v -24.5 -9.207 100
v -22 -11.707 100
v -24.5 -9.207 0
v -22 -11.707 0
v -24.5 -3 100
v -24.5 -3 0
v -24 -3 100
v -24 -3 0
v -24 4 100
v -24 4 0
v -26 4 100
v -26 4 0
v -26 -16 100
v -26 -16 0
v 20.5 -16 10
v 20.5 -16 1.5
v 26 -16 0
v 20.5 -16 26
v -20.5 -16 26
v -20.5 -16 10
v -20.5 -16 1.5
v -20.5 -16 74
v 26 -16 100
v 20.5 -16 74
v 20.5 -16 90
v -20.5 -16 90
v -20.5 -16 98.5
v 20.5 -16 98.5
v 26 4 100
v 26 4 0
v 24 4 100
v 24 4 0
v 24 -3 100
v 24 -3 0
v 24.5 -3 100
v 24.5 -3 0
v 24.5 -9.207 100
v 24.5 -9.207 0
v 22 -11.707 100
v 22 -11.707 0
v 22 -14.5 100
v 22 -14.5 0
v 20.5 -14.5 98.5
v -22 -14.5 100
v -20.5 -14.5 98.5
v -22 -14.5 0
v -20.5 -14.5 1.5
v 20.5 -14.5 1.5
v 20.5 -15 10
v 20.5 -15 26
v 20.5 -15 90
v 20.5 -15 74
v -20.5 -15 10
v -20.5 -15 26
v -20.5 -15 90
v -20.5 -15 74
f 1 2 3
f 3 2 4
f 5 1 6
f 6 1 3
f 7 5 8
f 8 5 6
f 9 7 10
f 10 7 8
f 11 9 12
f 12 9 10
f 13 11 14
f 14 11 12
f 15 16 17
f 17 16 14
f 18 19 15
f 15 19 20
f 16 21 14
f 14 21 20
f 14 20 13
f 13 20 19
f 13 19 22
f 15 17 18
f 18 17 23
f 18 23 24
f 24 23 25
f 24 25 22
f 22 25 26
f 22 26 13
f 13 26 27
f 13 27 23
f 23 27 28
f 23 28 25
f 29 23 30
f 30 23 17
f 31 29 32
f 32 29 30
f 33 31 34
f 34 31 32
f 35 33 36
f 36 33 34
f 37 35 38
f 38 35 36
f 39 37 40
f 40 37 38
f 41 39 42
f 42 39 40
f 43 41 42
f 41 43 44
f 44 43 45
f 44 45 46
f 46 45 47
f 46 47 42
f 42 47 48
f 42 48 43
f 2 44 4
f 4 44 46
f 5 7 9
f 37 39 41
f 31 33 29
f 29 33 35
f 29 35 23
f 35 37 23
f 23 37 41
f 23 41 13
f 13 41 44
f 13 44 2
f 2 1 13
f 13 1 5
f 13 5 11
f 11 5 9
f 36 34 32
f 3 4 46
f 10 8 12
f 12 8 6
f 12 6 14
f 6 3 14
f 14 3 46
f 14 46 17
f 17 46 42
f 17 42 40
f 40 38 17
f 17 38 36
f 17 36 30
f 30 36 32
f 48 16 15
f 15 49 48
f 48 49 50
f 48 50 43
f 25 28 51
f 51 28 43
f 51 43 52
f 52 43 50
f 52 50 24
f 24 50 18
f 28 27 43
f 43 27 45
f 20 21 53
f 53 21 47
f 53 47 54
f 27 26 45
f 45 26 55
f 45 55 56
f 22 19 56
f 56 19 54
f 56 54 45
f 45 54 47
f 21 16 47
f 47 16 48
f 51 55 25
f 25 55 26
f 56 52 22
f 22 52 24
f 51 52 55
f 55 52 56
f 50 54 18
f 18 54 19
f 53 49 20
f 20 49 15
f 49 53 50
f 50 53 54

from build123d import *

# Parameters (mm, degrees)
RESSALTO_EXTRUS_O1_DEPTH = 100
RESSALTO_EXTRUS_O3_REACH = 107.835
ESBO_O3_W                = 45
ESBO_O3_H                = 1.5
CORTE_EXTRUS_O1_DEPTH    = 103.343783397
ESBO_O5_W                = 12
ESBO_O5_H                = 1.5
CORTE_EXTRUS_O2_DEPTH    = 106.834776893
ESBO_O6_W                = 45
ESBO_O6_H                = 2
RESSALTO_EXTRUS_O4_DEPTH = 25
ESBO_O7_W                = 2.8
ESBO_O7_H                = 2.8
CORTE_EXTRUS_O3_DEPTH    = 10
CORTE_EXTRUS_O4_DEPTH    = 104.788245963
RESSALTO_EXTRUS_O5_DEPTH = 100
ESBO_O10_W               = 0.5
ESBO_O10_H               = 8
CORTE_EXTRUS_O5_DEPTH    = 104.788245963
CHANFRO1_SIZE            = 3
CHANFRO2_SIZE            = 3
RESSALTO_EXTRUS_O6_DEPTH = 100
CORTE_EXTRUS_O6_DEPTH    = 105.556204981
ESBO_O13_W               = 41
ESBO_O13_H               = 97.00005
CORTE_EXTRUS_O7_DEPTH    = 105.967852222
ESBO_O14_W               = 41
ESBO_O14_H               = 16
RESSALTO_EXTRUS_O7_DEPTH = 1


with BuildPart() as part:
    # Esboço1 → Ressalto-extrusão1 (new body)
    with BuildSketch(Plane.XY):
        Polygon((-22.5, 12.5), (-22.5, -7.5), (-17.5, -12.5), (17.5, -12.5), (22.5, -7.5), (22.5, 12.5), (24, 12.5), (24, -9), (19, -14), (-19, -14), (-24, -9), (-24, 12.5), align=None)
    extrude(amount=RESSALTO_EXTRUS_O1_DEPTH)

    # Ressalto-extrusão3: up to this face of the body (flat: up to its plane)
    ressalto_extrus_o3_end = Plane(part.part.faces().sort_by_distance((-23.25, 12.5, 50))[0])
    # Esboço3 → Ressalto-extrusão3 (add, up to the picked face)
    with BuildSketch(Plane(origin=(0, -12.5, 0), x_dir=(1, 0, 0), z_dir=(0, 1, 0)), mode=Mode.PRIVATE) as ressalto_extrus_o3_sk1:
        with Locations((0, -0.75)):
            Rectangle(ESBO_O3_W, ESBO_O3_H)
    ressalto_extrus_o3_tool1 = split(extrude(ressalto_extrus_o3_sk1.sketch, amount=RESSALTO_EXTRUS_O3_REACH, mode=Mode.PRIVATE), bisect_by=ressalto_extrus_o3_end, keep=Keep.BOTH, mode=Mode.PRIVATE)
    add(ressalto_extrus_o3_tool1.solids().sort_by(Axis((0, -12.5, 0.75), (0, 1, 0)))[0])

    # Esboço4 → Corte-extrusão1 (cut, through all)
    with BuildSketch(Plane.XY.offset(1.5)):
        Polygon((-10, -12.5), (10, -12.5), (10, -7.5), (5, -2.5), (-5, -2.5), (-10, -7.5), align=None)
    extrude(amount=-CORTE_EXTRUS_O1_DEPTH, mode=Mode.SUBTRACT)

    # Esboço5 → Corte-extrusão2 (cut, through all)
    with BuildSketch(Plane(origin=(0, -12.5, 0), x_dir=(1, 0, 0), z_dir=(0, 1, 0))):
        with Locations((0, -2.25)):
            Rectangle(ESBO_O5_W, ESBO_O5_H)
    extrude(amount=-CORTE_EXTRUS_O2_DEPTH, mode=Mode.SUBTRACT)

    # Esboço6 → Ressalto-extrusão4 (add)
    with BuildSketch(Plane(origin=(0, -12.5, 0), x_dir=(1, 0, 0), z_dir=(0, 1, 0))):
        with Locations((0, -99)):
            Rectangle(ESBO_O6_W, ESBO_O6_H)
    extrude(amount=RESSALTO_EXTRUS_O4_DEPTH)

    # Esboço7 → Corte-extrusão3 (cut)
    with BuildSketch(Plane.XY.offset(100)):
        with Locations((-8, 8.5)):
            Rectangle(ESBO_O7_W, ESBO_O7_H)
        with Locations((-16, 8.5)):
            Rectangle(ESBO_O7_W, ESBO_O7_H)
        with Locations((0, 8.5)):
            Rectangle(ESBO_O7_W, ESBO_O7_H)
        with Locations((8, 8.5)):
            Rectangle(ESBO_O7_W, ESBO_O7_H)
        with Locations((16, 8.5)):
            Rectangle(ESBO_O7_W, ESBO_O7_H)
        with Locations((-8, 0.5)):
            Rectangle(ESBO_O7_W, ESBO_O7_H)
        with Locations((0, 0.5)):
            Rectangle(ESBO_O7_W, ESBO_O7_H)
        with Locations((8, 0.5)):
            Rectangle(ESBO_O7_W, ESBO_O7_H)
        with Locations((16, 0.5)):
            Rectangle(ESBO_O7_W, ESBO_O7_H)
        with Locations((-8, -7.5)):
            Rectangle(ESBO_O7_W, ESBO_O7_H)
        with Locations((0, -7.5)):
            Rectangle(ESBO_O7_W, ESBO_O7_H)
        with Locations((8, -7.5)):
            Rectangle(ESBO_O7_W, ESBO_O7_H)
        with Locations((16, -7.5)):
            Rectangle(ESBO_O7_W, ESBO_O7_H)
        with Locations((-16, 0.5)):
            Rectangle(ESBO_O7_W, ESBO_O7_H)
        with Locations((-16, -7.5)):
            Rectangle(ESBO_O7_W, ESBO_O7_H)
    extrude(amount=-CORTE_EXTRUS_O3_DEPTH, mode=Mode.SUBTRACT)

    # Esboço8 → Corte-extrusão4 (cut, through all)
    with BuildSketch(Plane(origin=(0, 0, 0), x_dir=(-1, 0, 0), z_dir=(0, 0, -1))):
        Polygon((-22.5, -10.5), (-22.5, -12.5), (-20.5, -12.5), align=None)
        Polygon((20.5, -12.5), (22.5, -12.5), (22.5, -10.5), align=None)
    extrude(amount=-CORTE_EXTRUS_O4_DEPTH, mode=Mode.SUBTRACT)

    # Esboço9 → Ressalto-extrusão5 (add, through all)
    with BuildSketch(Plane(origin=(0, 0, 0), x_dir=(-1, 0, 0), z_dir=(0, 0, -1))):
        Polygon((-19, -14), (-21.5, -14), (-21.5, -11.5), align=None)
        Polygon((19, -14), (21.5, -14), (21.5, -11.5), align=None)
    extrude(amount=-RESSALTO_EXTRUS_O5_DEPTH)

    # Esboço10 → Corte-extrusão5 (cut, through all)
    with BuildSketch(Plane(origin=(0, 0, 0), x_dir=(-1, 0, 0), z_dir=(0, 0, -1))):
        with Locations((-23.75, 0.5)):
            Rectangle(ESBO_O10_W, ESBO_O10_H)
        with Locations((23.75, 0.5)):
            Rectangle(ESBO_O10_W, ESBO_O10_H)
    extrude(amount=-CORTE_EXTRUS_O5_DEPTH, mode=Mode.SUBTRACT)

    # Chanfro1
    # the kernel refuses this chamfer: 3 mm, written as the material it adds along each edge
    with BuildSketch(Plane(origin=(22.5, -15.215048964, 98), x_dir=(0.027495876610586768, 0, -0.9996219169112968), z_dir=(0, 1, 0))) as chanfro1_piece_1_section:
        Polygon((CHANFRO1_SIZE * 0.999621916911, CHANFRO1_SIZE * 0.0274958766106), (-CHANFRO1_SIZE * 0.0274958766106, CHANFRO1_SIZE * 0.999621916911), (0, 0), align=None)
    chanfro1_piece_1 = extrude(amount=27.715048964, mode=Mode.PRIVATE)
    chanfro1_piece_1 = split(chanfro1_piece_1, bisect_by=Plane(origin=(27.146986971, -2.853013029, 96.73534202), z_dir=(-0.7071067811865475, 0.7071067811865476, 0)), keep=Keep.TOP, mode=Mode.PRIVATE)
    add(chanfro1_piece_1)
    with BuildSketch(Plane(origin=(12.04463656, -17.95536344, 98), x_dir=(-0.7068394360706735, 0.7068394360706735, 0.027495876610586778), z_dir=(0.7071067811865476, 0.7071067811865475, 0))) as chanfro1_piece_2_section:
        Polygon((CHANFRO1_SIZE * 0.999621916911, -CHANFRO1_SIZE * 0.0274958766106), (-CHANFRO1_SIZE * 0.0274958766106, -CHANFRO1_SIZE * 0.999621916911), (0, 0), align=None)
    chanfro1_piece_2 = extrude(amount=22.50116574, mode=Mode.PRIVATE)
    chanfro1_piece_2 = split(chanfro1_piece_2, bisect_by=Plane(origin=(16.362312496, -12.5, 97.266244129), z_dir=(0, 1, 0)), keep=Keep.TOP, mode=Mode.PRIVATE)
    chanfro1_piece_2 = split(chanfro1_piece_2, bisect_by=Plane(origin=(16.362312496, -8.9, 97.266244129), z_dir=(0, -1, 0)), keep=Keep.TOP, mode=Mode.PRIVATE)
    add(chanfro1_piece_2)
    with BuildSketch(Plane(origin=(12.04463656, -17.95536344, 98), x_dir=(-0.7068394360706735, 0.7068394360706735, 0.027495876610586778), z_dir=(0.7071067811865476, 0.7071067811865475, 0))) as chanfro1_piece_3_section:
        Polygon((CHANFRO1_SIZE * 0.999621916911, -CHANFRO1_SIZE * 0.0274958766106), (-CHANFRO1_SIZE * 0.0274958766106, -CHANFRO1_SIZE * 0.999621916911), (0, 0), align=None)
    chanfro1_piece_3 = extrude(amount=22.50116574, mode=Mode.PRIVATE)
    chanfro1_piece_3 = split(chanfro1_piece_3, bisect_by=Plane(origin=(22.5, -7.314063038, 97.124733651), z_dir=(-1, 0, 0)), keep=Keep.TOP, mode=Mode.PRIVATE)
    chanfro1_piece_3 = split(chanfro1_piece_3, bisect_by=Plane(origin=(17.4, -7.314063038, 97.124733651), z_dir=(1, 0, 0)), keep=Keep.TOP, mode=Mode.PRIVATE)
    add(chanfro1_piece_3)
    with BuildSketch(Plane(origin=(25.215048964, -12.5, 98), x_dir=(0, -0.02749587661058619, -0.9996219169112968), z_dir=(-1, 0, 0))) as chanfro1_piece_4_section:
        Polygon((CHANFRO1_SIZE * 0.999621916911, -CHANFRO1_SIZE * 0.0274958766106), (-CHANFRO1_SIZE * 0.0274958766106, -CHANFRO1_SIZE * 0.999621916911), (0, 0), align=None)
    chanfro1_piece_4 = extrude(amount=50.430097928, mode=Mode.PRIVATE)
    chanfro1_piece_4 = split(chanfro1_piece_4, bisect_by=Plane(origin=(-9.263513514, -20.736486486, 97.013513514), z_dir=(0.7071067811865475, 0.7071067811865476, 0)), keep=Keep.TOP, mode=Mode.PRIVATE)
    chanfro1_piece_4 = split(chanfro1_piece_4, bisect_by=Plane(origin=(9.263513514, -20.736486486, 97.013513514), z_dir=(-0.7071067811865475, 0.7071067811865476, 0)), keep=Keep.TOP, mode=Mode.PRIVATE)
    add(chanfro1_piece_4)
    with BuildSketch(Plane(origin=(-27.95536344, -2.04463656, 98), x_dir=(0.7068394360706733, 0.7068394360706736, 0.027495876610586757), z_dir=(0.7071067811865476, -0.7071067811865475, 0))) as chanfro1_piece_5_section:
        Polygon((CHANFRO1_SIZE * 0.999621916911, -CHANFRO1_SIZE * 0.0274958766106), (-CHANFRO1_SIZE * 0.0274958766106, -CHANFRO1_SIZE * 0.999621916911), (0, 0), align=None)
    chanfro1_piece_5 = extrude(amount=22.50116574, mode=Mode.PRIVATE)
    chanfro1_piece_5 = split(chanfro1_piece_5, bisect_by=Plane(origin=(-22.5, -3.439339828, 97.957106781), z_dir=(1, 0, 0)), keep=Keep.TOP, mode=Mode.PRIVATE)
    chanfro1_piece_5 = split(chanfro1_piece_5, bisect_by=Plane(origin=(-17.4, -3.439339828, 97.957106781), z_dir=(-1, 0, 0)), keep=Keep.TOP, mode=Mode.PRIVATE)
    add(chanfro1_piece_5)
    with BuildSketch(Plane(origin=(-27.95536344, -2.04463656, 98), x_dir=(0.7068394360706733, 0.7068394360706736, 0.027495876610586757), z_dir=(0.7071067811865476, -0.7071067811865475, 0))) as chanfro1_piece_6_section:
        Polygon((CHANFRO1_SIZE * 0.999621916911, -CHANFRO1_SIZE * 0.0274958766106), (-CHANFRO1_SIZE * 0.0274958766106, -CHANFRO1_SIZE * 0.999621916911), (0, 0), align=None)
    chanfro1_piece_6 = extrude(amount=22.50116574, mode=Mode.PRIVATE)
    chanfro1_piece_6 = split(chanfro1_piece_6, bisect_by=Plane(origin=(-16.362312496, -12.5, 97.266244129), z_dir=(0, 1, 0)), keep=Keep.TOP, mode=Mode.PRIVATE)
    chanfro1_piece_6 = split(chanfro1_piece_6, bisect_by=Plane(origin=(-16.362312496, -8.9, 97.266244129), z_dir=(0, -1, 0)), keep=Keep.TOP, mode=Mode.PRIVATE)
    add(chanfro1_piece_6)
    with BuildSketch(Plane(origin=(-22.5, -15.215048964, 98), x_dir=(-0.027495876610586768, 0, -0.9996219169112968), z_dir=(0, 1, 0))) as chanfro1_piece_7_section:
        Polygon((CHANFRO1_SIZE * 0.999621916911, -CHANFRO1_SIZE * 0.0274958766106), (-CHANFRO1_SIZE * 0.0274958766106, -CHANFRO1_SIZE * 0.999621916911), (0, 0), align=None)
    chanfro1_piece_7 = extrude(amount=27.715048964, mode=Mode.PRIVATE)
    chanfro1_piece_7 = split(chanfro1_piece_7, bisect_by=Plane(origin=(-27.146986971, -2.853013029, 96.73534202), z_dir=(0.7071067811865475, 0.7071067811865476, 0)), keep=Keep.TOP, mode=Mode.PRIVATE)
    add(chanfro1_piece_7)

    # Chanfro2
    chanfro2_edges = [part.edges().sort_by_distance(p)[0] for p in [
        (-13.75, -12.5, 1.5),
        (20, -10, 1.5),
        (-22.5, 2.5, 1.5),
        (-20, -10, 1.5),
        (22.5, 2.5, 1.5),
        (13.75, -12.5, 1.5),
    ]]
    chamfer(chanfro2_edges, length=CHANFRO2_SIZE)

    # Esboço12 → Corte-extrusão6 (cut, through all)
    with BuildSketch(Plane(origin=(0, 0, 0), x_dir=(-1, 0, 0), z_dir=(0, 0, -1))):
        Polygon((24, -9), (24, -3.5), (23.5, -3.5), (23.5, 4.5), (24, 4.5), (24, 12.5), (-24, 12.5), (-24, 4.5), (-23.5, 4.5), (-23.5, -3.5), (-24, -3.5), (-24, -9), (-21.5, -11.5), (-21.5, -14), (21.5, -14), (21.5, -11.5), align=None)
    extrude(amount=-CORTE_EXTRUS_O6_DEPTH, mode=Mode.SUBTRACT)


with BuildPart() as body_2:
    # Esboço11 → Ressalto-extrusão6 (new, through all)
    with BuildSketch(Plane(origin=(0, 0, 0), x_dir=(-1, 0, 0), z_dir=(0, 0, -1))):
        Polygon((24.5, -9.207106781), (24.5, -3), (24, -3), (24, 4), (26, 4), (26, -14.5), (26, -16), (-26, -16), (-26, -14.5), (-26, 4), (-24, 4), (-24, -3), (-24.5, -3), (-24.5, -9.207106781), (-22, -11.707106781), (-22, -14.5), (22, -14.5), (22, -11.707106781), align=None)
    extrude(amount=-RESSALTO_EXTRUS_O6_DEPTH)

    # Esboço13 → Corte-extrusão7 (cut, through all)
    with BuildSketch(Plane(origin=(0, -14.5, 0), x_dir=(1, 0, 0), z_dir=(0, 1, 0))):
        with Locations((0, -50.000025)):
            Rectangle(ESBO_O13_W, ESBO_O13_H)
    extrude(amount=-CORTE_EXTRUS_O7_DEPTH, mode=Mode.SUBTRACT)

    # Esboço14 → Ressalto-extrusão7 (add)
    with BuildSketch(Plane.XZ.offset(16)):
        with Locations((0, 82.00005)):
            Rectangle(ESBO_O14_W, ESBO_O14_H)
        with Locations((0, 18)):
            Rectangle(ESBO_O14_W, ESBO_O14_H)
    extrude(amount=-RESSALTO_EXTRUS_O7_DEPTH)


solid = body_2.part
